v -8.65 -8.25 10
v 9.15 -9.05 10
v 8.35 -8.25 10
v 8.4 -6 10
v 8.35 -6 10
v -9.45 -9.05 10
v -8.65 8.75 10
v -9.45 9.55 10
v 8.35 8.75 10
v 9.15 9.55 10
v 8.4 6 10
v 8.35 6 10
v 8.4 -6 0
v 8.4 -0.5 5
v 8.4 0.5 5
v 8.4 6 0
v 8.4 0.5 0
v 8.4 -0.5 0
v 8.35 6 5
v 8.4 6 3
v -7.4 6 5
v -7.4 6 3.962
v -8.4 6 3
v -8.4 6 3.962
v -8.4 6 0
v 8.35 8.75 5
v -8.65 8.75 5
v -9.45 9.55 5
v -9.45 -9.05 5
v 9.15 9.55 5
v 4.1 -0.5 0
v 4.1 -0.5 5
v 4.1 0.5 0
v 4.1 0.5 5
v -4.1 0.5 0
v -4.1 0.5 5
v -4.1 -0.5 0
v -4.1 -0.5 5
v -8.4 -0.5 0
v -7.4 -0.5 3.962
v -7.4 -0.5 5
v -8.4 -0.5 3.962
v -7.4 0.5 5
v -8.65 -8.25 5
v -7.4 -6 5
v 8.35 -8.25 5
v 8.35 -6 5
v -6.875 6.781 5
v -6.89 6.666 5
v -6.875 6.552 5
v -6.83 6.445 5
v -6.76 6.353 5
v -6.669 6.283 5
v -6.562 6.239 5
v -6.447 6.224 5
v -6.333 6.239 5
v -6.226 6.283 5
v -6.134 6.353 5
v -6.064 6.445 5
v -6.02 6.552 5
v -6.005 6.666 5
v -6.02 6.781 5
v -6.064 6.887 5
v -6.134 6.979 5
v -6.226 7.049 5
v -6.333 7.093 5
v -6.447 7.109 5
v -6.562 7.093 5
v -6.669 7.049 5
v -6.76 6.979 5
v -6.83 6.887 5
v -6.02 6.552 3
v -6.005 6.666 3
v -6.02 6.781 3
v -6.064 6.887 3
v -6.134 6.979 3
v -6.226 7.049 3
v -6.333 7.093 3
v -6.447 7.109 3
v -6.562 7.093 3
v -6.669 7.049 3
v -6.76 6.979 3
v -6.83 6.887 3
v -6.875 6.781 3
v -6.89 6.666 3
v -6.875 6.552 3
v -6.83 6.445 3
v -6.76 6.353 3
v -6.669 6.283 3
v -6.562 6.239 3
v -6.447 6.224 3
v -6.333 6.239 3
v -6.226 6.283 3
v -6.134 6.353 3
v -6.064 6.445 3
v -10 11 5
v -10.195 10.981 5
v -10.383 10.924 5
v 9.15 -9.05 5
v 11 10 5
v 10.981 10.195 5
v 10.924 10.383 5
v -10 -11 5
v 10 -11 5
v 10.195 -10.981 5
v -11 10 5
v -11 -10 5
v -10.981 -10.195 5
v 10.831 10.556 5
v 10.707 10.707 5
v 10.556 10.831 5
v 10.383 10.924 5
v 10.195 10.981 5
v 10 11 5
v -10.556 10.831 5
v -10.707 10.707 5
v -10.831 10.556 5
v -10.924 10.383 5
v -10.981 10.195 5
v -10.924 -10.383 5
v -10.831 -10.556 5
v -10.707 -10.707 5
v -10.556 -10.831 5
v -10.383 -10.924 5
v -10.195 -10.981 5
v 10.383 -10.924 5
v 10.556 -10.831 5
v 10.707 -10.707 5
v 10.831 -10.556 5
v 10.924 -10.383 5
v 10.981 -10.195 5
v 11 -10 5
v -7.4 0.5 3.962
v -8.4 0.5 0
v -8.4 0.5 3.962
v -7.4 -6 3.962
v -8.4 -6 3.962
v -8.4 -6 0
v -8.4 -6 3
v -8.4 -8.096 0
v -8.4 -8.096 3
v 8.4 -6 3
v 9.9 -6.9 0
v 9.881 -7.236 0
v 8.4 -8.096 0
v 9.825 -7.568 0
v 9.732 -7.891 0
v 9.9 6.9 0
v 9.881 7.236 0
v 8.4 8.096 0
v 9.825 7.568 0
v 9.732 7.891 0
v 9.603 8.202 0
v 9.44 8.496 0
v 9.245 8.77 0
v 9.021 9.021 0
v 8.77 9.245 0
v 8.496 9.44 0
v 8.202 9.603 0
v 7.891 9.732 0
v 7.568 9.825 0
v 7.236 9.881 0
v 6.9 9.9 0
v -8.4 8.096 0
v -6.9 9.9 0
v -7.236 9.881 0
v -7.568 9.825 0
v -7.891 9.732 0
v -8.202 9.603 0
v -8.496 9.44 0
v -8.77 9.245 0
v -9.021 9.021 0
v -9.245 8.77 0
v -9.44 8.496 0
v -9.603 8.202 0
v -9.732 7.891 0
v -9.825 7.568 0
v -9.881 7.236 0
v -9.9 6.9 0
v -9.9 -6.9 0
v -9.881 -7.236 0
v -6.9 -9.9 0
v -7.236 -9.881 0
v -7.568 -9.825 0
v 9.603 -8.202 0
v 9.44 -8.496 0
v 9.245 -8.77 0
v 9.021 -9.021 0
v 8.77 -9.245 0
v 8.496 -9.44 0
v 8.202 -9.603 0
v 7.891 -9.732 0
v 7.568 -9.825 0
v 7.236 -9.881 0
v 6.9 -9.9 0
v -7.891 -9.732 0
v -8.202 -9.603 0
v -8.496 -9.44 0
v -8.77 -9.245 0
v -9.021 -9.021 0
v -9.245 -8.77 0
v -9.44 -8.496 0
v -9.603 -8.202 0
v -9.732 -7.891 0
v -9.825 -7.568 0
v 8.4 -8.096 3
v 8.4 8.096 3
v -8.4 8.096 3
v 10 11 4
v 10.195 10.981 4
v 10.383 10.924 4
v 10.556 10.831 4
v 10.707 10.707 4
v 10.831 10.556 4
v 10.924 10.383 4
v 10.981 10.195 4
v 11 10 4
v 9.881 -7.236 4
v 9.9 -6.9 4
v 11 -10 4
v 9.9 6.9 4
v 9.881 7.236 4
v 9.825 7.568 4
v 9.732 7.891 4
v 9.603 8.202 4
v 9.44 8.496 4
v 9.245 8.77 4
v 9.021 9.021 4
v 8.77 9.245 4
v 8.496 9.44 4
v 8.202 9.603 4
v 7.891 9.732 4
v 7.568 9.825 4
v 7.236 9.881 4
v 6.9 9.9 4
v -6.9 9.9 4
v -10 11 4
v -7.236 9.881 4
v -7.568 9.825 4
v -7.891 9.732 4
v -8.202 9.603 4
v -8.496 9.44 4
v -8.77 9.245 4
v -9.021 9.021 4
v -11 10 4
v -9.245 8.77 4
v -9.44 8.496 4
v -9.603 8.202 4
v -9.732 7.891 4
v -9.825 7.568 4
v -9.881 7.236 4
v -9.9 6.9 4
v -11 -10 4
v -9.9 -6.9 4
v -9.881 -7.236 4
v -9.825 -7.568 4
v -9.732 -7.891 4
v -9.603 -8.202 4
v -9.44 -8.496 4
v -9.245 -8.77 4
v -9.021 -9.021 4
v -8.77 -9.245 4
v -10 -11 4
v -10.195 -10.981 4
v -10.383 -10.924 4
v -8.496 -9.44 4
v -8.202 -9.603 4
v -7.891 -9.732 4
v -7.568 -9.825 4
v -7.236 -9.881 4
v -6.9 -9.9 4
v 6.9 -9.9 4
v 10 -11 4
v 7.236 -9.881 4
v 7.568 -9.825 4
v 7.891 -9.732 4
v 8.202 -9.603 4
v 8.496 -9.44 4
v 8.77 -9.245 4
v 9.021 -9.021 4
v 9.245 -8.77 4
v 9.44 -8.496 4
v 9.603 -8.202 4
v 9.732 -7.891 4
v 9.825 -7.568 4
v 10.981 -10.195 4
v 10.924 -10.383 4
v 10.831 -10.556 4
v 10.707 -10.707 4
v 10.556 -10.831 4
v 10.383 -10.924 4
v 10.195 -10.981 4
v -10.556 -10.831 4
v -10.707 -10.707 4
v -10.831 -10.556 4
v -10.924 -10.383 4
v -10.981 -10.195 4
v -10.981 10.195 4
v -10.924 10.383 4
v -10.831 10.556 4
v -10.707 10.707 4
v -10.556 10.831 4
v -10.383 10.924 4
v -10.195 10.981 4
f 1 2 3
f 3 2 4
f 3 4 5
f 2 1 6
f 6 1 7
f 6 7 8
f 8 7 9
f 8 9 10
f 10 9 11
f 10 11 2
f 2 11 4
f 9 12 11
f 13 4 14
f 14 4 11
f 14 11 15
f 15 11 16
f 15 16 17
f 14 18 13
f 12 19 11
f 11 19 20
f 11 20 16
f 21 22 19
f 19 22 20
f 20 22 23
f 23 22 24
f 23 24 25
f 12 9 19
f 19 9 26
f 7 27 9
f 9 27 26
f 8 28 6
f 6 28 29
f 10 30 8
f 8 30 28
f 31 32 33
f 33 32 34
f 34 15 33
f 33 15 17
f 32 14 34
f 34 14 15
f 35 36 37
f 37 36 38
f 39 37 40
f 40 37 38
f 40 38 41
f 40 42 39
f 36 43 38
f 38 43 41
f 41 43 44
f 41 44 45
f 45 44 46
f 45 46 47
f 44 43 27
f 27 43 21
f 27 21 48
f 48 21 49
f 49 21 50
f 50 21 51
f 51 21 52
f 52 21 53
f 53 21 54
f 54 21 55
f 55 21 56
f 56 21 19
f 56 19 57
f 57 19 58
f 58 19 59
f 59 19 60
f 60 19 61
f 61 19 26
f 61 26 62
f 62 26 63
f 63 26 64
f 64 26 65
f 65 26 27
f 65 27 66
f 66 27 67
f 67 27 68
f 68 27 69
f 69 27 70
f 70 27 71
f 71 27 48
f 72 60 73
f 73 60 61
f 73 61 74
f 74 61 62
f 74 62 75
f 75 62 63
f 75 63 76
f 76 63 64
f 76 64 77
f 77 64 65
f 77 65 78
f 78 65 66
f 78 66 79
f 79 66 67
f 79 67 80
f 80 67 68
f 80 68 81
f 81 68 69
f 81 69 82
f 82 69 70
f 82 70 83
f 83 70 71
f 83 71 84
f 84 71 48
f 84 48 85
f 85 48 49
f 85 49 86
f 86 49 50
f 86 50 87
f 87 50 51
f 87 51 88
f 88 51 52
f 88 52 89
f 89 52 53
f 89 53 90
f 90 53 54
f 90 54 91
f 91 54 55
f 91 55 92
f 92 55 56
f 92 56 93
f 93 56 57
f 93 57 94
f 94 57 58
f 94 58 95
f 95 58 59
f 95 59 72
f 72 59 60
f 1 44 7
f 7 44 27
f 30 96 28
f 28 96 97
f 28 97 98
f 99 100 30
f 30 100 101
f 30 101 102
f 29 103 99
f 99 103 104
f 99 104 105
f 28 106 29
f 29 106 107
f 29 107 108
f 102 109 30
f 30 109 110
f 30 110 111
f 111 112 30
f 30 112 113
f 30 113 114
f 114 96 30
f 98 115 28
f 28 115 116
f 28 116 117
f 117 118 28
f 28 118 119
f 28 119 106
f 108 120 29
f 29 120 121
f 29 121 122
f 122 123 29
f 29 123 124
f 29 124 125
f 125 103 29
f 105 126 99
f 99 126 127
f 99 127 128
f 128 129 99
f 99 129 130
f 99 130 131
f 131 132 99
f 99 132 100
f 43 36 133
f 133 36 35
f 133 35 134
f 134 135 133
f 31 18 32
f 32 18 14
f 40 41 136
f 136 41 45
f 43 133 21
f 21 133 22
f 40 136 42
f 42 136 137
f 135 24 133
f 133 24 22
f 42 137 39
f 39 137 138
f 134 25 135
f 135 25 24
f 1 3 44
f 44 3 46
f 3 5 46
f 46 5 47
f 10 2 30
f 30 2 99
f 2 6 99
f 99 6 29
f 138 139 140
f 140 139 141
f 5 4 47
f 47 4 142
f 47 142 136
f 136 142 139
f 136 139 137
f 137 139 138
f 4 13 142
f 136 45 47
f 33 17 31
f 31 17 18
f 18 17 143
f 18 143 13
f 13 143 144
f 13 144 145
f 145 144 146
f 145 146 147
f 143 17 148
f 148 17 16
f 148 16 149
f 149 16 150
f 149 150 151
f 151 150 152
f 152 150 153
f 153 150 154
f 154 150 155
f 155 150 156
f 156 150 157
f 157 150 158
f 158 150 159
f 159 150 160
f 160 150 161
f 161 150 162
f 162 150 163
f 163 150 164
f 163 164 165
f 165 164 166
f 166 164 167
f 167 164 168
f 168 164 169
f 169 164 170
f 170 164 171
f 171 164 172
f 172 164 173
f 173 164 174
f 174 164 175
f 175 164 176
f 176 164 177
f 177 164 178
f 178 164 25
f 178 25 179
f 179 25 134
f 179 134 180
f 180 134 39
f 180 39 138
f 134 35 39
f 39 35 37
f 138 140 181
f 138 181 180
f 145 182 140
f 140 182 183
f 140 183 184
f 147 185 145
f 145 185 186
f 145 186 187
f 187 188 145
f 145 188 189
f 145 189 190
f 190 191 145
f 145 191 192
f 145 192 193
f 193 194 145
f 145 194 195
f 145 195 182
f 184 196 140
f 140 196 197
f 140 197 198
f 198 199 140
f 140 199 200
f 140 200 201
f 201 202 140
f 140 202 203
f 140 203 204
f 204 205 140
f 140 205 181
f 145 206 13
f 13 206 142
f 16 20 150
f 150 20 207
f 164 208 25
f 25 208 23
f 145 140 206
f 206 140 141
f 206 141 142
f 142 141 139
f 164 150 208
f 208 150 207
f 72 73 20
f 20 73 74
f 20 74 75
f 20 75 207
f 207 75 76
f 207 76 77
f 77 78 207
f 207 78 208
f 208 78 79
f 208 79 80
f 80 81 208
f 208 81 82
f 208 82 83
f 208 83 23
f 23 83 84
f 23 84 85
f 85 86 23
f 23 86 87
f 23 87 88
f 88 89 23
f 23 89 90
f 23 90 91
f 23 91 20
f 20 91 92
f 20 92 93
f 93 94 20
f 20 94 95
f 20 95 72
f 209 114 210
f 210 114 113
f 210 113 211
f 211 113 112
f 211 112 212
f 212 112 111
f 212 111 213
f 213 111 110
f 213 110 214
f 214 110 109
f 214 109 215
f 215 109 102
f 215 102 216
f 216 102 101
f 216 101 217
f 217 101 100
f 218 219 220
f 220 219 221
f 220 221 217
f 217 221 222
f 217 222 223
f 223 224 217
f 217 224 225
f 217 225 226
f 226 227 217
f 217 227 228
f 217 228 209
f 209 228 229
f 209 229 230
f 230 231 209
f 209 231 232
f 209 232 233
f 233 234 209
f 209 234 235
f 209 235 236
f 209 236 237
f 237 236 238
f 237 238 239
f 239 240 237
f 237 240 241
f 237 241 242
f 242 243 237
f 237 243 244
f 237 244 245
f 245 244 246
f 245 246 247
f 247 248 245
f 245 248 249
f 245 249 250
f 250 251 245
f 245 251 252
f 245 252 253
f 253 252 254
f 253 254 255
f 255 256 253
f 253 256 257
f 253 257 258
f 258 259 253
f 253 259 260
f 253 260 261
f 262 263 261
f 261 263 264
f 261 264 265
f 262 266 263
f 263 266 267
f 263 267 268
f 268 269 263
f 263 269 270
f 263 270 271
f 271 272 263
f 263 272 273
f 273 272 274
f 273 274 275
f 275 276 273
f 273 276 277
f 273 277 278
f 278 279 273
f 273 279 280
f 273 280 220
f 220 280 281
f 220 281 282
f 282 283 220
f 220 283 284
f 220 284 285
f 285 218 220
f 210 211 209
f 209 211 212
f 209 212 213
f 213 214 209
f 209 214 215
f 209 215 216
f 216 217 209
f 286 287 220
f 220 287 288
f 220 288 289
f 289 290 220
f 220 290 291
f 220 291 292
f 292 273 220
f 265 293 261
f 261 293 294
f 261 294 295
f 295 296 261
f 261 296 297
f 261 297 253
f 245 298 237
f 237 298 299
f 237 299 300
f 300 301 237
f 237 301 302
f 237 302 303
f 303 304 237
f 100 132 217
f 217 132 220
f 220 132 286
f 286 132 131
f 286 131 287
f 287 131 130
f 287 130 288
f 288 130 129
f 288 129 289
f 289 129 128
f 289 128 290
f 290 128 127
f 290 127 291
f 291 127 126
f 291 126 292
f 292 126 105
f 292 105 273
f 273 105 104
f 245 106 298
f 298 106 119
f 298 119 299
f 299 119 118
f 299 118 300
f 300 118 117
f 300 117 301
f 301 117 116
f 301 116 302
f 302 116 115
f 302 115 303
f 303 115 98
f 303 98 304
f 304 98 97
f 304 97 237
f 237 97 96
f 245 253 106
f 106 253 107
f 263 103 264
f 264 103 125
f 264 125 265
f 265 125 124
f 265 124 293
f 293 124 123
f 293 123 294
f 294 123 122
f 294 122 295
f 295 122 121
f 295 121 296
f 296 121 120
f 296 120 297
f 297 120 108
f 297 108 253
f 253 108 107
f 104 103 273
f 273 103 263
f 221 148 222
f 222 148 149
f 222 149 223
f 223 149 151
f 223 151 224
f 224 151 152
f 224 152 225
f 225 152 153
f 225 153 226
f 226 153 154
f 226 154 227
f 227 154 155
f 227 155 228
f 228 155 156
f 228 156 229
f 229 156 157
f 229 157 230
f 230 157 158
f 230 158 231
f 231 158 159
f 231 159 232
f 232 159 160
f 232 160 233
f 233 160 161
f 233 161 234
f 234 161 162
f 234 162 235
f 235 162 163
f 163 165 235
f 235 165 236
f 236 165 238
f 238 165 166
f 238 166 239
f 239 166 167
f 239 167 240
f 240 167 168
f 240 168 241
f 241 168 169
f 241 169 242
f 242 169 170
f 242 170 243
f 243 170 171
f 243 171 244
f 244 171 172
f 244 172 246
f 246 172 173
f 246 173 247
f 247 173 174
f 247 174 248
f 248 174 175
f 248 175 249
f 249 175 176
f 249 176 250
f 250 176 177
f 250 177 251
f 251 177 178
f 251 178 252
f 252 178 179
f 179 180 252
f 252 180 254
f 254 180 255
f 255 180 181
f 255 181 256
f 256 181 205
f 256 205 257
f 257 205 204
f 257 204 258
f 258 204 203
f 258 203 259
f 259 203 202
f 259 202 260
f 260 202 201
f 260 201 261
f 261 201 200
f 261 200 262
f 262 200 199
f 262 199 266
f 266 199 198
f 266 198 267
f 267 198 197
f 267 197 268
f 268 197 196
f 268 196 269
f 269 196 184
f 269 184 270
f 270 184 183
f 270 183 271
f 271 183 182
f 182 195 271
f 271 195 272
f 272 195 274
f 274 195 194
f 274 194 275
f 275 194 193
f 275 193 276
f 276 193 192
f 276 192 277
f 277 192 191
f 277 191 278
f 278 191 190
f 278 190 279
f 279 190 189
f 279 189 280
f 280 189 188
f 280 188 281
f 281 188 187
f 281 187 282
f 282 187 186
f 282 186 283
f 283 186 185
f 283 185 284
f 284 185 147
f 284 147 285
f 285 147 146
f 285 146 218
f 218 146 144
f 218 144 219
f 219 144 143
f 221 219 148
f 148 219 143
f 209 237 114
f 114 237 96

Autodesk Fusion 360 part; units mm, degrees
sketch "Sketch1" plane through (0, 0, 0) normal (0, 0, 1) x (1, 0, 0)
  line L0 (9.9, 9.9) -> (-9.9, 9.9)
  line L1 (-9.9, 9.9) -> (-9.9, -9.9)
  line L2 (-9.9, -9.9) -> (9.9, -9.9)
  line L3 (9.9, -9.9) -> (9.9, 9.9)
  line L4 (9.9, 9.9) -> (-9.9, -9.9) construction
  line L5 (-9.9, 9.9) -> (9.9, -9.9) construction
  line L6 (11, -11) -> (-11, -11)
  line L7 (-11, -11) -> (-11, 11)
  line L8 (-11, 11) -> (11, 11)
  line L9 (11, 11) -> (11, -11)
  line L10 (11, -11) -> (-11, 11) construction
  line L11 (-11, -11) -> (11, 11) construction
  line L12 (8.9, -8.9) -> (-8.9, -8.9)
  line L13 (-8.9, -8.9) -> (-8.9, 8.9)
  line L14 (-8.9, 8.9) -> (8.9, 8.9)
  line L15 (8.9, 8.9) -> (8.9, -8.9)
  line L16 (8.9, -8.9) -> (-8.9, 8.9) construction
  line L17 (-8.9, -8.9) -> (8.9, 8.9) construction
  line L18 (8.4, -6) -> (-8.4, -6)
  line L19 (-8.4, -6) -> (-8.4, 6)
  line L20 (-8.4, 6) -> (8.4, 6)
  line L21 (8.4, 6) -> (8.4, -6)
  line L22 (8.4, -6) -> (-8.4, 6) construction
  line L23 (-8.4, -6) -> (8.4, 6) construction
  line L24 (8.0957, 8.0957) -> (-8.0957, 8.0957)
  line L25 (-8.0957, 8.0957) -> (-8.0957, -8.0957)
  line L26 (-8.0957, -8.0957) -> (8.0957, -8.0957)
  line L27 (8.0957, -8.0957) -> (8.0957, 8.0957)
  line L28 (8.0957, 8.0957) -> (-8.0957, -8.0957) construction
  line L29 (-8.0957, 8.0957) -> (8.0957, -8.0957) construction
  line L30 (8.9, -0.5) -> (-8.9, -0.5)
  line L31 (-8.9, -0.5) -> (-8.9, 0.5)
  line L32 (-8.9, 0.5) -> (8.9, 0.5)
  line L33 (8.9, 0.5) -> (8.9, -0.5)
  line L34 (8.9, -0.5) -> (-8.9, 0.5) construction
  line L35 (-8.9, -0.5) -> (8.9, 0.5) construction
  dimension "d1" = 19.8
  dimension "d2" = 19.8
  dimension "d3" = 22
  dimension "d4" = 22
  dimension "d5" = 17.8
  dimension "d6" = 17.8
  dimension "d7" = 16.8
  dimension "d8" = 12
  dimension "d53" = 1
extrude "Extrude1" add sketch "Sketch1" along normal blind 1 contours L12 L13 L15 L18 L19 L21 L25 L26 L27 L30 | L15 L21 L30 L32 L33 | L13 L19 L30 L31 L32 | L13 L14 L15 L19 L20 L21 L24 L25 L27 L32 | L18 L25 L26 L27 | L20 L24 L25 L27
extrude "Extrude2" add sketch "Sketch1" along normal blind 4 contours L0 L1 L2 L3
extrude "Extrude3" add sketch "Sketch1" along normal blind 5 contours L6 L7 L8 L9
extrude "Extrude4" cut sketch "Sketch1" along normal blind 4 contours L6 L7 L8 L9
extrude "Extrude5" add 1 faces at (-9.5667, -2.9667, 4) along direction (0, 0, 1) blind 1
fillet "Fillet1" radius 3 1 edges at (9.9, -9.9, 2)
fillet "Fillet2" radius 3 1 edges at (-9.9, -9.9, 2)
fillet "Fillet3" radius 3 2 edges at (-9.9, 9.9, 2) (9.9, 9.9, 2)
fillet "Fillet4" radius 1 4 edges at (-11, -11, 4.5) (-11, 11, 4.5) (11, -11, 4.5) (11, 11, 4.5)
extrude "Extrude6" add 1 faces at (-2.8, -7.9333, 1) along direction (0, 0, 1) blind 5
extrude "Extrude7" cut sketch "Sketch1" along normal blind 3 contours L18 L25 L26 L27 | L20 L24 L25 L27
extrude "Extrude8" cut 1 faces at (-8.0957, 7.3972, 1) along direction (-1, 0, 0) blind 0.304
extrude "Extrude9" cut 1 faces at (8.0957, 6.6986, 1) along direction (1, 0, 0) blind 0.304
extrude "Extrude10" cut 1 faces at (8.0957, -7.3972, 1) along direction (1, 0, 0) blind 0.304
extrude "Extrude11" cut 1 faces at (-8.0957, -6.6986, 1) along direction (-1, 0, 0) blind 0.304
sketch "Sketch2" plane through (8.4, 0, 0) normal (-1, 0, 0) x (0, -1, 0)
  line L0 (-6, 0) -> (6, 0)
  line L1 (6, 0) -> (6, 6)
  line L2 (6, 6) -> (-6, 6)
  line L3 (-6, 6) -> (-6, 0)
  line L4 (-6, 6) -> (6, 6)
  line L5 (6, 6) -> (6, 4.0166)
  line L6 (6, 4.0166) -> (-6, 4.0166)
  line L7 (-6, 4.0166) -> (-6, 6)
extrude "Extrude12" add sketch "Sketch2" along normal blind 1 contours L1 L2 L3 L4 L5 L6 L7
sketch "Sketch3" plane through (-8.4, 0, 0) normal (1, 0, 0) x (0, 1, 0)
  line L0 (-6, 0) -> (6, 0)
  line L1 (6, 0) -> (6, 6)
  line L2 (6, 6) -> (-6, 6)
  line L3 (-6, 6) -> (-6, 0)
  line L4 (-6, 6) -> (6, 6)
  line L5 (6, 6) -> (6, 3.9624)
  line L6 (6, 3.9624) -> (-6, 3.9624)
  line L7 (-6, 3.9624) -> (-6, 6)
extrude "Extrude13" add sketch "Sketch3" along normal blind 1 contours L1 L2 L3 L4 L5 L6 L7
extrude "Extrude14" cut 1 faces at (-2.4667, 7.9333, 6) along direction (0, 0, -1) blind 2
extrude "Extrude15" add 1 faces at (-2.4667, 7.9333, 4) along direction (0, 0, 1) blind 1
sketch "TOP BUTTON GUIDE" plane through (0, 0, 5) normal (0, 0, 1) x (-1, 0, 0)
  line L0 (-8.4, 6) -> (7.4, 6)
  line L1 (7.4, 6) -> (7.4, -6)
  line L2 (7.4, -6) -> (-8.4, -6)
  line L3 (-8.4, -6) -> (-8.4, 6)
  arc A0 (-11, -10) -> (-10, -11) centre (-10, -10) ccw
  line L4 (-10, -11) -> (10, -11)
  arc A1 (10, -11) -> (11, -10) centre (10, -10) ccw
  line L5 (11, -10) -> (11, 10)
  arc A2 (11, 10) -> (10, 11) centre (10, 10) ccw
  line L6 (10, 11) -> (-10, 11)
  arc A3 (-10, 11) -> (-11, 10) centre (-10, 10) ccw
  line L7 (-11, 10) -> (-11, -10)
  line L8 (-8.35, 8.25) -> (8.35, 8.25)
  line L9 (8.35, 8.25) -> (8.35, -8.25)
  line L10 (8.35, -8.25) -> (-8.35, -8.25)
  line L11 (-8.35, -8.25) -> (-8.35, 8.25)
  line L12 (-8.35, 8.25) -> (8.35, -8.25) construction
  line L13 (8.35, 8.25) -> (-8.35, -8.25) construction
  line L14 (-9.15, 9.05) -> (9.15, 9.05)
  line L15 (9.15, 9.05) -> (9.15, -9.05)
  line L16 (9.15, -9.05) -> (-9.15, -9.05)
  line L17 (-9.15, -9.05) -> (-9.15, 9.05)
  line L18 (-9.15, 9.05) -> (9.15, -9.05) construction
  line L19 (9.15, 9.05) -> (-9.15, -9.05) construction
  dimension "d47" = 16.7
  dimension "d48" = 16.5
  dimension "d49" = 18.3
  dimension "d50" = 18.1
extrude "Extrude16" add sketch "TOP BUTTON GUIDE" along normal blind 2 contours L14 L15 L16 L17
extrude "Extrude17" add sketch "Sketch1" along normal blind 5 contours L21 L27 L30 L32 | L19 L25 L30 L32 | L25 L27 L30 L32
sketch "Sketch5" plane through (0, 0, 5) normal (0, 0, 1) x (-1, 0, 0)
  line L0 (7.4, -0.5) -> (7.4, -6)
  line L1 (7.4, -6) -> (-8.35, -6)
  line L2 (-8.35, -6) -> (-8.35, -8.25)
  line L3 (-8.35, -8.25) -> (8.35, -8.25)
  line L4 (8.35, -8.25) -> (8.35, 8.25)
  line L5 (8.35, 8.25) -> (-8.35, 8.25)
  line L6 (-8.35, 8.25) -> (-8.35, 6)
  line L7 (-8.35, 6) -> (7.4, 6)
  line L8 (7.4, 6) -> (7.4, 0.5)
  line L9 (7.4, 0.5) -> (-8.4, 0.5)
  line L10 (-8.4, 0.5) -> (-8.4, -0.5)
  line L11 (-8.4, -0.5) -> (7.4, -0.5)
  line L12 (-3.5, 1.3147) -> (3.5, 1.3147)
  line L13 (3.5, 1.3147) -> (3.5, -1.3147)
  line L14 (3.5, -1.3147) -> (-3.5, -1.3147)
  line L15 (-3.5, -1.3147) -> (-3.5, 1.3147)
  line L16 (-3.5, 1.3147) -> (3.5, -1.3147) construction
  line L17 (3.5, 1.3147) -> (-3.5, -1.3147) construction
  dimension "d56" = 7
extrude "Extrude18" cut sketch "Sketch5" against normal blind 6 contours L9 L11 L13 L15
extrude "Extrude19" cut 1 faces at (-2.7833, 8.25, 5.6667) along direction (0, 1, 0) blind 0.5
extrude "Extrude20" add 1 faces at (-3.05, 9.05, 5.6667) along direction (0, 1, 0) blind 0.5
extrude "Extrude21" cut 1 faces at (-8.35, 3.0833, 6.3333) along direction (-1, 0, 0) blind 0.3
extrude "Extrude22" add 1 faces at (-9.15, 3.35, 5.6667) along direction (-1, 0, 0) blind 0.3
sketch "Sketch6" plane through (0, 0, 5) normal (0, 0, 1) x (-1, 0, 0)
  line L0 (3.5, 0.5) -> (3.5, -0.5)
  line L1 (3.5, -0.5) -> (7.4, -0.5)
  line L2 (7.4, -0.5) -> (7.4, -6)
  line L3 (7.4, -6) -> (-8.35, -6)
  line L4 (-8.35, -6) -> (-8.35, -8.75)
  line L5 (-8.35, -8.75) -> (8.65, -8.75)
  line L6 (8.65, -8.75) -> (8.65, 8.25)
  line L7 (8.65, 8.25) -> (-8.35, 8.25)
  line L8 (-8.35, 8.25) -> (-8.35, 6)
  line L9 (-8.35, 6) -> (7.4, 6)
  line L10 (7.4, 6) -> (7.4, 0.5)
  line L11 (7.4, 0.5) -> (3.5, 0.5)
  circle A0 centre (6.4473, -6.6661) radius 0.4424
extrude "Extrude23" cut sketch "Sketch6" against normal blind 2 contours A0
extrude "Extrude24" cut 1 faces at (-3.5, -0.1667, 3.3333) along direction (-1, 0, 0) blind 0.6
extrude "Extrude25" cut 1 faces at (3.5, 0.1667, 3.3333) along direction (1, 0, 0) blind 0.6
extrude "Extrude26" add 1 faces at (-9.1833, -2.5833, 7) along direction (0, 0, 1) blind 5
extrude "Extrude27" cut 1 faces at (-9.1833, -2.5833, 12) along direction (0, 0, -1) blind 2
